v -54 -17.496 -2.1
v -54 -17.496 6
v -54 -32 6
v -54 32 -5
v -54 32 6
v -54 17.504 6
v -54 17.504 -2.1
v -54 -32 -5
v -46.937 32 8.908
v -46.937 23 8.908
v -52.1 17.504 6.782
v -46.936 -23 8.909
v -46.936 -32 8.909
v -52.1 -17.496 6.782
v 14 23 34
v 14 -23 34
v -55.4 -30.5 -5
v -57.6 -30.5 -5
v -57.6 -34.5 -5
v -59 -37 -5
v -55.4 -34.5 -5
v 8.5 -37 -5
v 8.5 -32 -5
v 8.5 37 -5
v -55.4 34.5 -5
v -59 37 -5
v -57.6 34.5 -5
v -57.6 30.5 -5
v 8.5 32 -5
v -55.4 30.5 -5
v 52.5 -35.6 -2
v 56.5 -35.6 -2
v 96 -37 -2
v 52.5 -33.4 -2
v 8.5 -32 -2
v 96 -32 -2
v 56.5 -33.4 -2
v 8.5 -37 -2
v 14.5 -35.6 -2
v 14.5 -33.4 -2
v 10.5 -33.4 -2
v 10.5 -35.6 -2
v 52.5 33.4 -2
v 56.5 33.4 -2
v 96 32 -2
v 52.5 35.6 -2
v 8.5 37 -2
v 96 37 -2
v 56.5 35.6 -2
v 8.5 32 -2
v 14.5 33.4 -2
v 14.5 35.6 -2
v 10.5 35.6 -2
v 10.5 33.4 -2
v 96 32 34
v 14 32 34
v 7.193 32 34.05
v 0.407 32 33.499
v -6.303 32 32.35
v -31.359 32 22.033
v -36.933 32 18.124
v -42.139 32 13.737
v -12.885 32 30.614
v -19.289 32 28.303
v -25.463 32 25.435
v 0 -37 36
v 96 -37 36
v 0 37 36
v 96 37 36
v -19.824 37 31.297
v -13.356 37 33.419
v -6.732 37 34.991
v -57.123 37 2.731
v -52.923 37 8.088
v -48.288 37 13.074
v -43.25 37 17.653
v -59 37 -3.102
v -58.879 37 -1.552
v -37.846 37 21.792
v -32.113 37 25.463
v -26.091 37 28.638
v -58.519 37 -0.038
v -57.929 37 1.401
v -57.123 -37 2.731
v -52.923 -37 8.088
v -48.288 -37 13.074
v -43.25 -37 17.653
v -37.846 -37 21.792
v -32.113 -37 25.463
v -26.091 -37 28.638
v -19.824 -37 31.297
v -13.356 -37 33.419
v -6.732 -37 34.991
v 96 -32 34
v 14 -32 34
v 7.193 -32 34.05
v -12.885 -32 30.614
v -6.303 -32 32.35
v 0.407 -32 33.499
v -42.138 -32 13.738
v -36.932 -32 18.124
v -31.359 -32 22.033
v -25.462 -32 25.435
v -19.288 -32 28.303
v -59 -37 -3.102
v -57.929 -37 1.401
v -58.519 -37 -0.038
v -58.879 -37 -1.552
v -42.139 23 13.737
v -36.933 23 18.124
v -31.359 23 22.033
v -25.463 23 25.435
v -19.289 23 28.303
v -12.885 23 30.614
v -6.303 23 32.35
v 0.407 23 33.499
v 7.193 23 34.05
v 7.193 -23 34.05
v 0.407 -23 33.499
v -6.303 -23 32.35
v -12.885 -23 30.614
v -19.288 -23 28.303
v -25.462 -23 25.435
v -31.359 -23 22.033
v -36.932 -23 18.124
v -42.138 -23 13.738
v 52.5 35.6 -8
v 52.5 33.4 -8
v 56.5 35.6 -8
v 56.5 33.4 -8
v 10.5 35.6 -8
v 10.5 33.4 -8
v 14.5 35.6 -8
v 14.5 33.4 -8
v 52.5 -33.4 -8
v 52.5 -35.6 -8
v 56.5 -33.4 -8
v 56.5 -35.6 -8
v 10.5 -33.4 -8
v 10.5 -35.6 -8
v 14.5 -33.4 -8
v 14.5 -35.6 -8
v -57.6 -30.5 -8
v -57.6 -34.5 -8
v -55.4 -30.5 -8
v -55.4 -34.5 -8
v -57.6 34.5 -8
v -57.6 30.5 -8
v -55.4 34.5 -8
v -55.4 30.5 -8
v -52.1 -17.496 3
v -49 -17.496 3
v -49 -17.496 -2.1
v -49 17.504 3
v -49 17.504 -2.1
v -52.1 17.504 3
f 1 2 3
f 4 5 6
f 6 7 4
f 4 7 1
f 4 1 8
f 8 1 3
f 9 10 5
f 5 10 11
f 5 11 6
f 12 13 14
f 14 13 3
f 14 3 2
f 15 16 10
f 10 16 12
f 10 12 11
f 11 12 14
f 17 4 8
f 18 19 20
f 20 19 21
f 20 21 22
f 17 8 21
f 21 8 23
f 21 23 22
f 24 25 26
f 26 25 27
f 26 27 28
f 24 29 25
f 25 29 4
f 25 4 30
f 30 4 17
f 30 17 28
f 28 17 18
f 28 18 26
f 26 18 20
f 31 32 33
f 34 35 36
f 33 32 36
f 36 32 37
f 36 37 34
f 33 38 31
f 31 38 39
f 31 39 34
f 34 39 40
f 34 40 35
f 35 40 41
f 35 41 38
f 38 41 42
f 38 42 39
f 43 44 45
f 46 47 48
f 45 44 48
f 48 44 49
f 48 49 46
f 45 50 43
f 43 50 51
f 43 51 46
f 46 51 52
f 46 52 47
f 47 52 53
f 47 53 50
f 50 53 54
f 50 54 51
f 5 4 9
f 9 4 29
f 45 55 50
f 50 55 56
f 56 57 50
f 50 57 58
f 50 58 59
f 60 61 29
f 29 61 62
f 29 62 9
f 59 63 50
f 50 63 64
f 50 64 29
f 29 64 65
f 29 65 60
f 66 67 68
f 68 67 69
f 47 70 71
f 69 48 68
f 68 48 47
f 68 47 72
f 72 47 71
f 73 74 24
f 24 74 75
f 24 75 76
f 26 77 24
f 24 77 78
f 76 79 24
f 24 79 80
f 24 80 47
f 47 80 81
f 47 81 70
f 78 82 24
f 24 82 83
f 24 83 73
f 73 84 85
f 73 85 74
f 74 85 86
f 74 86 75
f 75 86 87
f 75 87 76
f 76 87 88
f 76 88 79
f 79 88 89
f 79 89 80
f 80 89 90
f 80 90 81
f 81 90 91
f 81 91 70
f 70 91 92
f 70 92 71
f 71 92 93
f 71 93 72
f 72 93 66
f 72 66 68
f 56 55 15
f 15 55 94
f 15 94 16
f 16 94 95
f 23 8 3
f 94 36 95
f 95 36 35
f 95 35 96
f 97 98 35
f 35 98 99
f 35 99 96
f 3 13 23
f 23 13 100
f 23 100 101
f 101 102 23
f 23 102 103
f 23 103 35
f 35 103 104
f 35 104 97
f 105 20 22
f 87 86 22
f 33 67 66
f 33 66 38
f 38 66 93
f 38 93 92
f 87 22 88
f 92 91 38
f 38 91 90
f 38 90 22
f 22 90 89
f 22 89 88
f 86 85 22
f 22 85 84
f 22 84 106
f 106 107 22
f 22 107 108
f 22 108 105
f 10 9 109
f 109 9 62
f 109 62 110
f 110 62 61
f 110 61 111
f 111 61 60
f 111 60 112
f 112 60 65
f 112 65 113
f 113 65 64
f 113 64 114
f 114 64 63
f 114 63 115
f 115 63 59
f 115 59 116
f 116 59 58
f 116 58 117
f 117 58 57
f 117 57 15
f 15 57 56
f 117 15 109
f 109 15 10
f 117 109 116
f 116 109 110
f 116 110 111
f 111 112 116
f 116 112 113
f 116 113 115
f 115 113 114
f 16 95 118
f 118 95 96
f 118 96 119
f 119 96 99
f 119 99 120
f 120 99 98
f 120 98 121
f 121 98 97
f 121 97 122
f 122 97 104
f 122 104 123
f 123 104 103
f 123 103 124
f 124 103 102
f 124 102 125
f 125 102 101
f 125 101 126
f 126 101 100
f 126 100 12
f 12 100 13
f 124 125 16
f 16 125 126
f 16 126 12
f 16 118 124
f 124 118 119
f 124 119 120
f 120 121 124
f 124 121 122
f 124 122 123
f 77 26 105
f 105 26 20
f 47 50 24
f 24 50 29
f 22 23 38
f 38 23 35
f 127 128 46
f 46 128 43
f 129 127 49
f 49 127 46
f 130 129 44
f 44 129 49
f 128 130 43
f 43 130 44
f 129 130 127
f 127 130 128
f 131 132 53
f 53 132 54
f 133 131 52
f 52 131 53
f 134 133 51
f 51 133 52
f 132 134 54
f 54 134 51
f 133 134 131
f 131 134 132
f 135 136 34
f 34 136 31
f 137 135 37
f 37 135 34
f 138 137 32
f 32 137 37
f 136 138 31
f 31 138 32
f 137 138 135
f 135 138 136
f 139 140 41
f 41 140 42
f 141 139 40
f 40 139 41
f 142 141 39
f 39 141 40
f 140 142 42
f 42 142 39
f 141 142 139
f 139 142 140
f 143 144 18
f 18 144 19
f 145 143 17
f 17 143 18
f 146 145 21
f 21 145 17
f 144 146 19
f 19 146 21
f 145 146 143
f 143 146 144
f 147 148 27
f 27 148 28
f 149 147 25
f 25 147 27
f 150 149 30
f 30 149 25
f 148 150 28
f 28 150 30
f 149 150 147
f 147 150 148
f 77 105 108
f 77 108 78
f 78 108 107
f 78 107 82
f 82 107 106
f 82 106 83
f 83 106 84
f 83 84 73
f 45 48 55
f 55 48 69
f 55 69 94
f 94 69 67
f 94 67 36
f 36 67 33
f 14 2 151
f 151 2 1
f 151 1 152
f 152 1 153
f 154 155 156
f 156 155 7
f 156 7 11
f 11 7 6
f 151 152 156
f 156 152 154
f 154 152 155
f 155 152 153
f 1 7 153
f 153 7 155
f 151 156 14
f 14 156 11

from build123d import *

# Parameters (mm, degrees)
CROQUIS1_W              = 118
CROQUIS1_H              = 74
SALIENTE_EXTRUIR1_DEPTH = 36
CROQUIS2_W              = 36
CROQUIS2_H              = 64
CORTAR_EXTRUIR1_DEPTH   = 120
CORTAR_EXTRUIR3_DEPTH   = 102.257098517
SALIENTE_EXTRUIR2_DEPTH = 64
CORTAR_EXTRUIR4_DEPTH   = 9
CORTAR_EXTRUIR5_DEPTH   = 9
SALIENTE_EXTRUIR4_DEPTH = 5
CROQUIS14_W             = 50.5
CROQUIS14_H             = 3
CORTAR_EXTRUIR7_DEPTH   = 74
CROQUIS15_W             = 4
CROQUIS15_H             = 2.2
CROQUIS15_W_2           = 2.2
CROQUIS15_H_2           = 4
SALIENTE_EXTRUIR3_DEPTH = 6
REDONDEO1_R             = 10
SALIENTE_EXTRUIR5_DEPTH = 37
CROQUIS21_W             = 8
CROQUIS21_H             = 35
SALIENTE_EXTRUIR6_DEPTH = 5
CROQUIS22_W             = 2.9
CROQUIS22_H             = 35
CORTAR_EXTRUIR8_DEPTH   = 5
CROQUIS23_W             = 3.8
CROQUIS23_H             = 35
SALIENTE_EXTRUIR7_DEPTH = 1.9


with BuildPart() as part:
    # Croquis1 → Saliente-Extruir1 (new body)
    with BuildSketch(Plane.XY):
        Rectangle(CROQUIS1_W, CROQUIS1_H)
    extrude(amount=SALIENTE_EXTRUIR1_DEPTH)

    # Croquis2 → Cortar-Extruir1 (cut)
    with BuildSketch(Plane(origin=(59, 0, 0), x_dir=(0, 0, -1), z_dir=(1, 0, 0))):
        with Locations((-18, 0)):
            Rectangle(CROQUIS2_W, CROQUIS2_H)
    extrude(amount=-CORTAR_EXTRUIR1_DEPTH, mode=Mode.SUBTRACT)


with BuildPart() as cortar_extruir1_piece_1:
    # of the separate pieces the step leaves, piece 1, a body of its own (cortar_extruir1_pieces)
    add(part.part.solids().sort_by_distance((-59, 37, 0))[0])


with BuildPart() as cortar_extruir1_piece_2:
    # of the separate pieces the step leaves, piece 2, a body of its own (cortar_extruir1_pieces)
    add(part.part.solids().sort_by_distance((-59, -37, 0))[0])


with BuildPart() as cortar_extruir3_tool:
    # Croquis6 → Cortar-Extruir3 (new, through all)
    with BuildSketch(Plane.XZ.offset(37)):
        with BuildLine():
            Line((-59, 0), (-59, 36))
            Line((-59, 36), (0, 36))
            ThreePointArc((0, 36), (-33.535731191, 24.614115008), (-59, 0))
        make_face()
    extrude(amount=-CORTAR_EXTRUIR3_DEPTH)


with BuildPart() as cortar_extruir1_piece_1_1:
    add(cortar_extruir1_piece_1.part)

    # Cortar-Extruir3: cut by cortar_extruir3_tool
    add(cortar_extruir3_tool.part, mode=Mode.SUBTRACT)



with BuildPart() as cortar_extruir1_piece_2_1:
    add(cortar_extruir1_piece_2.part)

    # Cortar-Extruir3: cut by cortar_extruir3_tool
    add(cortar_extruir3_tool.part, mode=Mode.SUBTRACT)


with BuildPart() as cortar_extruir1_piece_1_2:
    add(cortar_extruir1_piece_1_1.part)

    add(cortar_extruir1_piece_2_1.part)  # Saliente-Extruir2 merges Cortar-Extruir1 piece 2
    # Croquis7 → Saliente-Extruir2 (add)
    with BuildSketch(Plane.XZ.offset(-32)):
        with BuildLine():
            Line((0, 36), (59, 36))
            Line((59, 36), (59, 34))
            Line((59, 34), (14, 34))
            Line((14, 34), (-54, 6))
            Line((-54, 6), (-54, 0))
            Line((-54, 0), (-59, 0))
            ThreePointArc((-59, 0), (-33.535731191, 24.614115008), (0, 36))
        make_face()
    extrude(amount=SALIENTE_EXTRUIR2_DEPTH)

    # Croquis8 → Cortar-Extruir4 (cut)
    with BuildSketch(Plane.XZ.offset(-32)):
        with BuildLine():
            Line((14, 34), (-46.937159353, 8.908228502))
            ThreePointArc((-46.937159353, 8.908228502), (-19.288572578, 28.30266844), (14, 34))
        make_face()
    extrude(amount=CORTAR_EXTRUIR4_DEPTH, mode=Mode.SUBTRACT)

    # Croquis13 → Cortar-Extruir5 (cut)
    with BuildSketch(Plane(origin=(0, -32, 0), x_dir=(1, 0, 0), z_dir=(0, 1, 0))):
        with BuildLine():
            Line((14, -34), (-46.936286689, -8.908587834))
            ThreePointArc((-46.936286689, -8.908587834), (-19.28805118, -28.302641518), (14, -34))
        make_face()
    extrude(amount=CORTAR_EXTRUIR5_DEPTH, mode=Mode.SUBTRACT)

    # Croquis17 → Saliente-Extruir4 (add)
    with BuildSketch(Plane(origin=(0, 0, 0), x_dir=(-1, 0, 0), z_dir=(0, 0, -1))):
        Polygon((-59, 37), (-59, 32), (54, 32), (54, -32), (-59, -32), (-59, -37), (59, -37), (59, 37), align=None)
    extrude(amount=SALIENTE_EXTRUIR4_DEPTH)

    # Croquis14 → Cortar-Extruir7 (cut)
    with BuildSketch(Plane.XZ.offset(37)):
        with Locations((33.75, -3.5)):
            Rectangle(CROQUIS14_W, CROQUIS14_H)
    extrude(amount=-CORTAR_EXTRUIR7_DEPTH, mode=Mode.SUBTRACT)

    # Croquis15 → Saliente-Extruir3 (add)
    with BuildSketch(Plane(origin=(0, 0, -2), x_dir=(-1, 0, 0), z_dir=(0, 0, -1))):
        with Locations((-54.5, 34.5)):
            Rectangle(CROQUIS15_W, CROQUIS15_H)
        with Locations((-54.5, -34.5)):
            Rectangle(CROQUIS15_W, CROQUIS15_H)
        with Locations((-12.5, 34.5)):
            Rectangle(CROQUIS15_W, CROQUIS15_H)
        with Locations((-12.5, -34.5)):
            Rectangle(CROQUIS15_W, CROQUIS15_H)
        with Locations((56.5, -32.5)):
            Rectangle(CROQUIS15_W_2, CROQUIS15_H_2)
        with Locations((56.5, 32.5)):
            Rectangle(CROQUIS15_W_2, CROQUIS15_H_2)
    extrude(amount=SALIENTE_EXTRUIR3_DEPTH)

    # Redondeo1
    redondeo1_edges = [cortar_extruir1_piece_1_2.edges().sort_by_distance(p)[0] for p in [
        (-59, 0, 0),
    ]]
    fillet(redondeo1_edges, radius=REDONDEO1_R)

    # Croquis19 → Saliente-Extruir5 (add)
    with BuildSketch(Plane(origin=(59, 0, 0), x_dir=(0, 0, -1), z_dir=(1, 0, 0))):
        Polygon((2, 37), (2, 32), (-34, 32), (-34, -32), (2, -32), (2, -37), (-36, -37), (-36, 37), align=None)
    extrude(amount=SALIENTE_EXTRUIR5_DEPTH)

    # Croquis21 → Saliente-Extruir6 (add)
    with BuildSketch(Plane(origin=(-54, 0, 0), x_dir=(0, 0, -1), z_dir=(1, 0, 0))):
        with Locations((1, 0.003682439)):
            Rectangle(CROQUIS21_W, CROQUIS21_H)
    extrude(amount=SALIENTE_EXTRUIR6_DEPTH)

    # Croquis22 → Cortar-Extruir8 (cut)
    with BuildSketch(Plane(origin=(-49, 0, 0), x_dir=(0, 0, -1), z_dir=(1, 0, 0))):
        with Locations((3.55, 0.003682439)):
            Rectangle(CROQUIS22_W, CROQUIS22_H)
    extrude(amount=-CORTAR_EXTRUIR8_DEPTH, mode=Mode.SUBTRACT)

    # Croquis23 → Saliente-Extruir7 (add)
    with BuildSketch(Plane(origin=(-54, 0, 0), x_dir=(0, 0, -1), z_dir=(1, 0, 0))):
        with Locations((-4.9, 0.003682439)):
            Rectangle(CROQUIS23_W, CROQUIS23_H)
    extrude(amount=SALIENTE_EXTRUIR7_DEPTH)


solid = cortar_extruir1_piece_1_2.part
